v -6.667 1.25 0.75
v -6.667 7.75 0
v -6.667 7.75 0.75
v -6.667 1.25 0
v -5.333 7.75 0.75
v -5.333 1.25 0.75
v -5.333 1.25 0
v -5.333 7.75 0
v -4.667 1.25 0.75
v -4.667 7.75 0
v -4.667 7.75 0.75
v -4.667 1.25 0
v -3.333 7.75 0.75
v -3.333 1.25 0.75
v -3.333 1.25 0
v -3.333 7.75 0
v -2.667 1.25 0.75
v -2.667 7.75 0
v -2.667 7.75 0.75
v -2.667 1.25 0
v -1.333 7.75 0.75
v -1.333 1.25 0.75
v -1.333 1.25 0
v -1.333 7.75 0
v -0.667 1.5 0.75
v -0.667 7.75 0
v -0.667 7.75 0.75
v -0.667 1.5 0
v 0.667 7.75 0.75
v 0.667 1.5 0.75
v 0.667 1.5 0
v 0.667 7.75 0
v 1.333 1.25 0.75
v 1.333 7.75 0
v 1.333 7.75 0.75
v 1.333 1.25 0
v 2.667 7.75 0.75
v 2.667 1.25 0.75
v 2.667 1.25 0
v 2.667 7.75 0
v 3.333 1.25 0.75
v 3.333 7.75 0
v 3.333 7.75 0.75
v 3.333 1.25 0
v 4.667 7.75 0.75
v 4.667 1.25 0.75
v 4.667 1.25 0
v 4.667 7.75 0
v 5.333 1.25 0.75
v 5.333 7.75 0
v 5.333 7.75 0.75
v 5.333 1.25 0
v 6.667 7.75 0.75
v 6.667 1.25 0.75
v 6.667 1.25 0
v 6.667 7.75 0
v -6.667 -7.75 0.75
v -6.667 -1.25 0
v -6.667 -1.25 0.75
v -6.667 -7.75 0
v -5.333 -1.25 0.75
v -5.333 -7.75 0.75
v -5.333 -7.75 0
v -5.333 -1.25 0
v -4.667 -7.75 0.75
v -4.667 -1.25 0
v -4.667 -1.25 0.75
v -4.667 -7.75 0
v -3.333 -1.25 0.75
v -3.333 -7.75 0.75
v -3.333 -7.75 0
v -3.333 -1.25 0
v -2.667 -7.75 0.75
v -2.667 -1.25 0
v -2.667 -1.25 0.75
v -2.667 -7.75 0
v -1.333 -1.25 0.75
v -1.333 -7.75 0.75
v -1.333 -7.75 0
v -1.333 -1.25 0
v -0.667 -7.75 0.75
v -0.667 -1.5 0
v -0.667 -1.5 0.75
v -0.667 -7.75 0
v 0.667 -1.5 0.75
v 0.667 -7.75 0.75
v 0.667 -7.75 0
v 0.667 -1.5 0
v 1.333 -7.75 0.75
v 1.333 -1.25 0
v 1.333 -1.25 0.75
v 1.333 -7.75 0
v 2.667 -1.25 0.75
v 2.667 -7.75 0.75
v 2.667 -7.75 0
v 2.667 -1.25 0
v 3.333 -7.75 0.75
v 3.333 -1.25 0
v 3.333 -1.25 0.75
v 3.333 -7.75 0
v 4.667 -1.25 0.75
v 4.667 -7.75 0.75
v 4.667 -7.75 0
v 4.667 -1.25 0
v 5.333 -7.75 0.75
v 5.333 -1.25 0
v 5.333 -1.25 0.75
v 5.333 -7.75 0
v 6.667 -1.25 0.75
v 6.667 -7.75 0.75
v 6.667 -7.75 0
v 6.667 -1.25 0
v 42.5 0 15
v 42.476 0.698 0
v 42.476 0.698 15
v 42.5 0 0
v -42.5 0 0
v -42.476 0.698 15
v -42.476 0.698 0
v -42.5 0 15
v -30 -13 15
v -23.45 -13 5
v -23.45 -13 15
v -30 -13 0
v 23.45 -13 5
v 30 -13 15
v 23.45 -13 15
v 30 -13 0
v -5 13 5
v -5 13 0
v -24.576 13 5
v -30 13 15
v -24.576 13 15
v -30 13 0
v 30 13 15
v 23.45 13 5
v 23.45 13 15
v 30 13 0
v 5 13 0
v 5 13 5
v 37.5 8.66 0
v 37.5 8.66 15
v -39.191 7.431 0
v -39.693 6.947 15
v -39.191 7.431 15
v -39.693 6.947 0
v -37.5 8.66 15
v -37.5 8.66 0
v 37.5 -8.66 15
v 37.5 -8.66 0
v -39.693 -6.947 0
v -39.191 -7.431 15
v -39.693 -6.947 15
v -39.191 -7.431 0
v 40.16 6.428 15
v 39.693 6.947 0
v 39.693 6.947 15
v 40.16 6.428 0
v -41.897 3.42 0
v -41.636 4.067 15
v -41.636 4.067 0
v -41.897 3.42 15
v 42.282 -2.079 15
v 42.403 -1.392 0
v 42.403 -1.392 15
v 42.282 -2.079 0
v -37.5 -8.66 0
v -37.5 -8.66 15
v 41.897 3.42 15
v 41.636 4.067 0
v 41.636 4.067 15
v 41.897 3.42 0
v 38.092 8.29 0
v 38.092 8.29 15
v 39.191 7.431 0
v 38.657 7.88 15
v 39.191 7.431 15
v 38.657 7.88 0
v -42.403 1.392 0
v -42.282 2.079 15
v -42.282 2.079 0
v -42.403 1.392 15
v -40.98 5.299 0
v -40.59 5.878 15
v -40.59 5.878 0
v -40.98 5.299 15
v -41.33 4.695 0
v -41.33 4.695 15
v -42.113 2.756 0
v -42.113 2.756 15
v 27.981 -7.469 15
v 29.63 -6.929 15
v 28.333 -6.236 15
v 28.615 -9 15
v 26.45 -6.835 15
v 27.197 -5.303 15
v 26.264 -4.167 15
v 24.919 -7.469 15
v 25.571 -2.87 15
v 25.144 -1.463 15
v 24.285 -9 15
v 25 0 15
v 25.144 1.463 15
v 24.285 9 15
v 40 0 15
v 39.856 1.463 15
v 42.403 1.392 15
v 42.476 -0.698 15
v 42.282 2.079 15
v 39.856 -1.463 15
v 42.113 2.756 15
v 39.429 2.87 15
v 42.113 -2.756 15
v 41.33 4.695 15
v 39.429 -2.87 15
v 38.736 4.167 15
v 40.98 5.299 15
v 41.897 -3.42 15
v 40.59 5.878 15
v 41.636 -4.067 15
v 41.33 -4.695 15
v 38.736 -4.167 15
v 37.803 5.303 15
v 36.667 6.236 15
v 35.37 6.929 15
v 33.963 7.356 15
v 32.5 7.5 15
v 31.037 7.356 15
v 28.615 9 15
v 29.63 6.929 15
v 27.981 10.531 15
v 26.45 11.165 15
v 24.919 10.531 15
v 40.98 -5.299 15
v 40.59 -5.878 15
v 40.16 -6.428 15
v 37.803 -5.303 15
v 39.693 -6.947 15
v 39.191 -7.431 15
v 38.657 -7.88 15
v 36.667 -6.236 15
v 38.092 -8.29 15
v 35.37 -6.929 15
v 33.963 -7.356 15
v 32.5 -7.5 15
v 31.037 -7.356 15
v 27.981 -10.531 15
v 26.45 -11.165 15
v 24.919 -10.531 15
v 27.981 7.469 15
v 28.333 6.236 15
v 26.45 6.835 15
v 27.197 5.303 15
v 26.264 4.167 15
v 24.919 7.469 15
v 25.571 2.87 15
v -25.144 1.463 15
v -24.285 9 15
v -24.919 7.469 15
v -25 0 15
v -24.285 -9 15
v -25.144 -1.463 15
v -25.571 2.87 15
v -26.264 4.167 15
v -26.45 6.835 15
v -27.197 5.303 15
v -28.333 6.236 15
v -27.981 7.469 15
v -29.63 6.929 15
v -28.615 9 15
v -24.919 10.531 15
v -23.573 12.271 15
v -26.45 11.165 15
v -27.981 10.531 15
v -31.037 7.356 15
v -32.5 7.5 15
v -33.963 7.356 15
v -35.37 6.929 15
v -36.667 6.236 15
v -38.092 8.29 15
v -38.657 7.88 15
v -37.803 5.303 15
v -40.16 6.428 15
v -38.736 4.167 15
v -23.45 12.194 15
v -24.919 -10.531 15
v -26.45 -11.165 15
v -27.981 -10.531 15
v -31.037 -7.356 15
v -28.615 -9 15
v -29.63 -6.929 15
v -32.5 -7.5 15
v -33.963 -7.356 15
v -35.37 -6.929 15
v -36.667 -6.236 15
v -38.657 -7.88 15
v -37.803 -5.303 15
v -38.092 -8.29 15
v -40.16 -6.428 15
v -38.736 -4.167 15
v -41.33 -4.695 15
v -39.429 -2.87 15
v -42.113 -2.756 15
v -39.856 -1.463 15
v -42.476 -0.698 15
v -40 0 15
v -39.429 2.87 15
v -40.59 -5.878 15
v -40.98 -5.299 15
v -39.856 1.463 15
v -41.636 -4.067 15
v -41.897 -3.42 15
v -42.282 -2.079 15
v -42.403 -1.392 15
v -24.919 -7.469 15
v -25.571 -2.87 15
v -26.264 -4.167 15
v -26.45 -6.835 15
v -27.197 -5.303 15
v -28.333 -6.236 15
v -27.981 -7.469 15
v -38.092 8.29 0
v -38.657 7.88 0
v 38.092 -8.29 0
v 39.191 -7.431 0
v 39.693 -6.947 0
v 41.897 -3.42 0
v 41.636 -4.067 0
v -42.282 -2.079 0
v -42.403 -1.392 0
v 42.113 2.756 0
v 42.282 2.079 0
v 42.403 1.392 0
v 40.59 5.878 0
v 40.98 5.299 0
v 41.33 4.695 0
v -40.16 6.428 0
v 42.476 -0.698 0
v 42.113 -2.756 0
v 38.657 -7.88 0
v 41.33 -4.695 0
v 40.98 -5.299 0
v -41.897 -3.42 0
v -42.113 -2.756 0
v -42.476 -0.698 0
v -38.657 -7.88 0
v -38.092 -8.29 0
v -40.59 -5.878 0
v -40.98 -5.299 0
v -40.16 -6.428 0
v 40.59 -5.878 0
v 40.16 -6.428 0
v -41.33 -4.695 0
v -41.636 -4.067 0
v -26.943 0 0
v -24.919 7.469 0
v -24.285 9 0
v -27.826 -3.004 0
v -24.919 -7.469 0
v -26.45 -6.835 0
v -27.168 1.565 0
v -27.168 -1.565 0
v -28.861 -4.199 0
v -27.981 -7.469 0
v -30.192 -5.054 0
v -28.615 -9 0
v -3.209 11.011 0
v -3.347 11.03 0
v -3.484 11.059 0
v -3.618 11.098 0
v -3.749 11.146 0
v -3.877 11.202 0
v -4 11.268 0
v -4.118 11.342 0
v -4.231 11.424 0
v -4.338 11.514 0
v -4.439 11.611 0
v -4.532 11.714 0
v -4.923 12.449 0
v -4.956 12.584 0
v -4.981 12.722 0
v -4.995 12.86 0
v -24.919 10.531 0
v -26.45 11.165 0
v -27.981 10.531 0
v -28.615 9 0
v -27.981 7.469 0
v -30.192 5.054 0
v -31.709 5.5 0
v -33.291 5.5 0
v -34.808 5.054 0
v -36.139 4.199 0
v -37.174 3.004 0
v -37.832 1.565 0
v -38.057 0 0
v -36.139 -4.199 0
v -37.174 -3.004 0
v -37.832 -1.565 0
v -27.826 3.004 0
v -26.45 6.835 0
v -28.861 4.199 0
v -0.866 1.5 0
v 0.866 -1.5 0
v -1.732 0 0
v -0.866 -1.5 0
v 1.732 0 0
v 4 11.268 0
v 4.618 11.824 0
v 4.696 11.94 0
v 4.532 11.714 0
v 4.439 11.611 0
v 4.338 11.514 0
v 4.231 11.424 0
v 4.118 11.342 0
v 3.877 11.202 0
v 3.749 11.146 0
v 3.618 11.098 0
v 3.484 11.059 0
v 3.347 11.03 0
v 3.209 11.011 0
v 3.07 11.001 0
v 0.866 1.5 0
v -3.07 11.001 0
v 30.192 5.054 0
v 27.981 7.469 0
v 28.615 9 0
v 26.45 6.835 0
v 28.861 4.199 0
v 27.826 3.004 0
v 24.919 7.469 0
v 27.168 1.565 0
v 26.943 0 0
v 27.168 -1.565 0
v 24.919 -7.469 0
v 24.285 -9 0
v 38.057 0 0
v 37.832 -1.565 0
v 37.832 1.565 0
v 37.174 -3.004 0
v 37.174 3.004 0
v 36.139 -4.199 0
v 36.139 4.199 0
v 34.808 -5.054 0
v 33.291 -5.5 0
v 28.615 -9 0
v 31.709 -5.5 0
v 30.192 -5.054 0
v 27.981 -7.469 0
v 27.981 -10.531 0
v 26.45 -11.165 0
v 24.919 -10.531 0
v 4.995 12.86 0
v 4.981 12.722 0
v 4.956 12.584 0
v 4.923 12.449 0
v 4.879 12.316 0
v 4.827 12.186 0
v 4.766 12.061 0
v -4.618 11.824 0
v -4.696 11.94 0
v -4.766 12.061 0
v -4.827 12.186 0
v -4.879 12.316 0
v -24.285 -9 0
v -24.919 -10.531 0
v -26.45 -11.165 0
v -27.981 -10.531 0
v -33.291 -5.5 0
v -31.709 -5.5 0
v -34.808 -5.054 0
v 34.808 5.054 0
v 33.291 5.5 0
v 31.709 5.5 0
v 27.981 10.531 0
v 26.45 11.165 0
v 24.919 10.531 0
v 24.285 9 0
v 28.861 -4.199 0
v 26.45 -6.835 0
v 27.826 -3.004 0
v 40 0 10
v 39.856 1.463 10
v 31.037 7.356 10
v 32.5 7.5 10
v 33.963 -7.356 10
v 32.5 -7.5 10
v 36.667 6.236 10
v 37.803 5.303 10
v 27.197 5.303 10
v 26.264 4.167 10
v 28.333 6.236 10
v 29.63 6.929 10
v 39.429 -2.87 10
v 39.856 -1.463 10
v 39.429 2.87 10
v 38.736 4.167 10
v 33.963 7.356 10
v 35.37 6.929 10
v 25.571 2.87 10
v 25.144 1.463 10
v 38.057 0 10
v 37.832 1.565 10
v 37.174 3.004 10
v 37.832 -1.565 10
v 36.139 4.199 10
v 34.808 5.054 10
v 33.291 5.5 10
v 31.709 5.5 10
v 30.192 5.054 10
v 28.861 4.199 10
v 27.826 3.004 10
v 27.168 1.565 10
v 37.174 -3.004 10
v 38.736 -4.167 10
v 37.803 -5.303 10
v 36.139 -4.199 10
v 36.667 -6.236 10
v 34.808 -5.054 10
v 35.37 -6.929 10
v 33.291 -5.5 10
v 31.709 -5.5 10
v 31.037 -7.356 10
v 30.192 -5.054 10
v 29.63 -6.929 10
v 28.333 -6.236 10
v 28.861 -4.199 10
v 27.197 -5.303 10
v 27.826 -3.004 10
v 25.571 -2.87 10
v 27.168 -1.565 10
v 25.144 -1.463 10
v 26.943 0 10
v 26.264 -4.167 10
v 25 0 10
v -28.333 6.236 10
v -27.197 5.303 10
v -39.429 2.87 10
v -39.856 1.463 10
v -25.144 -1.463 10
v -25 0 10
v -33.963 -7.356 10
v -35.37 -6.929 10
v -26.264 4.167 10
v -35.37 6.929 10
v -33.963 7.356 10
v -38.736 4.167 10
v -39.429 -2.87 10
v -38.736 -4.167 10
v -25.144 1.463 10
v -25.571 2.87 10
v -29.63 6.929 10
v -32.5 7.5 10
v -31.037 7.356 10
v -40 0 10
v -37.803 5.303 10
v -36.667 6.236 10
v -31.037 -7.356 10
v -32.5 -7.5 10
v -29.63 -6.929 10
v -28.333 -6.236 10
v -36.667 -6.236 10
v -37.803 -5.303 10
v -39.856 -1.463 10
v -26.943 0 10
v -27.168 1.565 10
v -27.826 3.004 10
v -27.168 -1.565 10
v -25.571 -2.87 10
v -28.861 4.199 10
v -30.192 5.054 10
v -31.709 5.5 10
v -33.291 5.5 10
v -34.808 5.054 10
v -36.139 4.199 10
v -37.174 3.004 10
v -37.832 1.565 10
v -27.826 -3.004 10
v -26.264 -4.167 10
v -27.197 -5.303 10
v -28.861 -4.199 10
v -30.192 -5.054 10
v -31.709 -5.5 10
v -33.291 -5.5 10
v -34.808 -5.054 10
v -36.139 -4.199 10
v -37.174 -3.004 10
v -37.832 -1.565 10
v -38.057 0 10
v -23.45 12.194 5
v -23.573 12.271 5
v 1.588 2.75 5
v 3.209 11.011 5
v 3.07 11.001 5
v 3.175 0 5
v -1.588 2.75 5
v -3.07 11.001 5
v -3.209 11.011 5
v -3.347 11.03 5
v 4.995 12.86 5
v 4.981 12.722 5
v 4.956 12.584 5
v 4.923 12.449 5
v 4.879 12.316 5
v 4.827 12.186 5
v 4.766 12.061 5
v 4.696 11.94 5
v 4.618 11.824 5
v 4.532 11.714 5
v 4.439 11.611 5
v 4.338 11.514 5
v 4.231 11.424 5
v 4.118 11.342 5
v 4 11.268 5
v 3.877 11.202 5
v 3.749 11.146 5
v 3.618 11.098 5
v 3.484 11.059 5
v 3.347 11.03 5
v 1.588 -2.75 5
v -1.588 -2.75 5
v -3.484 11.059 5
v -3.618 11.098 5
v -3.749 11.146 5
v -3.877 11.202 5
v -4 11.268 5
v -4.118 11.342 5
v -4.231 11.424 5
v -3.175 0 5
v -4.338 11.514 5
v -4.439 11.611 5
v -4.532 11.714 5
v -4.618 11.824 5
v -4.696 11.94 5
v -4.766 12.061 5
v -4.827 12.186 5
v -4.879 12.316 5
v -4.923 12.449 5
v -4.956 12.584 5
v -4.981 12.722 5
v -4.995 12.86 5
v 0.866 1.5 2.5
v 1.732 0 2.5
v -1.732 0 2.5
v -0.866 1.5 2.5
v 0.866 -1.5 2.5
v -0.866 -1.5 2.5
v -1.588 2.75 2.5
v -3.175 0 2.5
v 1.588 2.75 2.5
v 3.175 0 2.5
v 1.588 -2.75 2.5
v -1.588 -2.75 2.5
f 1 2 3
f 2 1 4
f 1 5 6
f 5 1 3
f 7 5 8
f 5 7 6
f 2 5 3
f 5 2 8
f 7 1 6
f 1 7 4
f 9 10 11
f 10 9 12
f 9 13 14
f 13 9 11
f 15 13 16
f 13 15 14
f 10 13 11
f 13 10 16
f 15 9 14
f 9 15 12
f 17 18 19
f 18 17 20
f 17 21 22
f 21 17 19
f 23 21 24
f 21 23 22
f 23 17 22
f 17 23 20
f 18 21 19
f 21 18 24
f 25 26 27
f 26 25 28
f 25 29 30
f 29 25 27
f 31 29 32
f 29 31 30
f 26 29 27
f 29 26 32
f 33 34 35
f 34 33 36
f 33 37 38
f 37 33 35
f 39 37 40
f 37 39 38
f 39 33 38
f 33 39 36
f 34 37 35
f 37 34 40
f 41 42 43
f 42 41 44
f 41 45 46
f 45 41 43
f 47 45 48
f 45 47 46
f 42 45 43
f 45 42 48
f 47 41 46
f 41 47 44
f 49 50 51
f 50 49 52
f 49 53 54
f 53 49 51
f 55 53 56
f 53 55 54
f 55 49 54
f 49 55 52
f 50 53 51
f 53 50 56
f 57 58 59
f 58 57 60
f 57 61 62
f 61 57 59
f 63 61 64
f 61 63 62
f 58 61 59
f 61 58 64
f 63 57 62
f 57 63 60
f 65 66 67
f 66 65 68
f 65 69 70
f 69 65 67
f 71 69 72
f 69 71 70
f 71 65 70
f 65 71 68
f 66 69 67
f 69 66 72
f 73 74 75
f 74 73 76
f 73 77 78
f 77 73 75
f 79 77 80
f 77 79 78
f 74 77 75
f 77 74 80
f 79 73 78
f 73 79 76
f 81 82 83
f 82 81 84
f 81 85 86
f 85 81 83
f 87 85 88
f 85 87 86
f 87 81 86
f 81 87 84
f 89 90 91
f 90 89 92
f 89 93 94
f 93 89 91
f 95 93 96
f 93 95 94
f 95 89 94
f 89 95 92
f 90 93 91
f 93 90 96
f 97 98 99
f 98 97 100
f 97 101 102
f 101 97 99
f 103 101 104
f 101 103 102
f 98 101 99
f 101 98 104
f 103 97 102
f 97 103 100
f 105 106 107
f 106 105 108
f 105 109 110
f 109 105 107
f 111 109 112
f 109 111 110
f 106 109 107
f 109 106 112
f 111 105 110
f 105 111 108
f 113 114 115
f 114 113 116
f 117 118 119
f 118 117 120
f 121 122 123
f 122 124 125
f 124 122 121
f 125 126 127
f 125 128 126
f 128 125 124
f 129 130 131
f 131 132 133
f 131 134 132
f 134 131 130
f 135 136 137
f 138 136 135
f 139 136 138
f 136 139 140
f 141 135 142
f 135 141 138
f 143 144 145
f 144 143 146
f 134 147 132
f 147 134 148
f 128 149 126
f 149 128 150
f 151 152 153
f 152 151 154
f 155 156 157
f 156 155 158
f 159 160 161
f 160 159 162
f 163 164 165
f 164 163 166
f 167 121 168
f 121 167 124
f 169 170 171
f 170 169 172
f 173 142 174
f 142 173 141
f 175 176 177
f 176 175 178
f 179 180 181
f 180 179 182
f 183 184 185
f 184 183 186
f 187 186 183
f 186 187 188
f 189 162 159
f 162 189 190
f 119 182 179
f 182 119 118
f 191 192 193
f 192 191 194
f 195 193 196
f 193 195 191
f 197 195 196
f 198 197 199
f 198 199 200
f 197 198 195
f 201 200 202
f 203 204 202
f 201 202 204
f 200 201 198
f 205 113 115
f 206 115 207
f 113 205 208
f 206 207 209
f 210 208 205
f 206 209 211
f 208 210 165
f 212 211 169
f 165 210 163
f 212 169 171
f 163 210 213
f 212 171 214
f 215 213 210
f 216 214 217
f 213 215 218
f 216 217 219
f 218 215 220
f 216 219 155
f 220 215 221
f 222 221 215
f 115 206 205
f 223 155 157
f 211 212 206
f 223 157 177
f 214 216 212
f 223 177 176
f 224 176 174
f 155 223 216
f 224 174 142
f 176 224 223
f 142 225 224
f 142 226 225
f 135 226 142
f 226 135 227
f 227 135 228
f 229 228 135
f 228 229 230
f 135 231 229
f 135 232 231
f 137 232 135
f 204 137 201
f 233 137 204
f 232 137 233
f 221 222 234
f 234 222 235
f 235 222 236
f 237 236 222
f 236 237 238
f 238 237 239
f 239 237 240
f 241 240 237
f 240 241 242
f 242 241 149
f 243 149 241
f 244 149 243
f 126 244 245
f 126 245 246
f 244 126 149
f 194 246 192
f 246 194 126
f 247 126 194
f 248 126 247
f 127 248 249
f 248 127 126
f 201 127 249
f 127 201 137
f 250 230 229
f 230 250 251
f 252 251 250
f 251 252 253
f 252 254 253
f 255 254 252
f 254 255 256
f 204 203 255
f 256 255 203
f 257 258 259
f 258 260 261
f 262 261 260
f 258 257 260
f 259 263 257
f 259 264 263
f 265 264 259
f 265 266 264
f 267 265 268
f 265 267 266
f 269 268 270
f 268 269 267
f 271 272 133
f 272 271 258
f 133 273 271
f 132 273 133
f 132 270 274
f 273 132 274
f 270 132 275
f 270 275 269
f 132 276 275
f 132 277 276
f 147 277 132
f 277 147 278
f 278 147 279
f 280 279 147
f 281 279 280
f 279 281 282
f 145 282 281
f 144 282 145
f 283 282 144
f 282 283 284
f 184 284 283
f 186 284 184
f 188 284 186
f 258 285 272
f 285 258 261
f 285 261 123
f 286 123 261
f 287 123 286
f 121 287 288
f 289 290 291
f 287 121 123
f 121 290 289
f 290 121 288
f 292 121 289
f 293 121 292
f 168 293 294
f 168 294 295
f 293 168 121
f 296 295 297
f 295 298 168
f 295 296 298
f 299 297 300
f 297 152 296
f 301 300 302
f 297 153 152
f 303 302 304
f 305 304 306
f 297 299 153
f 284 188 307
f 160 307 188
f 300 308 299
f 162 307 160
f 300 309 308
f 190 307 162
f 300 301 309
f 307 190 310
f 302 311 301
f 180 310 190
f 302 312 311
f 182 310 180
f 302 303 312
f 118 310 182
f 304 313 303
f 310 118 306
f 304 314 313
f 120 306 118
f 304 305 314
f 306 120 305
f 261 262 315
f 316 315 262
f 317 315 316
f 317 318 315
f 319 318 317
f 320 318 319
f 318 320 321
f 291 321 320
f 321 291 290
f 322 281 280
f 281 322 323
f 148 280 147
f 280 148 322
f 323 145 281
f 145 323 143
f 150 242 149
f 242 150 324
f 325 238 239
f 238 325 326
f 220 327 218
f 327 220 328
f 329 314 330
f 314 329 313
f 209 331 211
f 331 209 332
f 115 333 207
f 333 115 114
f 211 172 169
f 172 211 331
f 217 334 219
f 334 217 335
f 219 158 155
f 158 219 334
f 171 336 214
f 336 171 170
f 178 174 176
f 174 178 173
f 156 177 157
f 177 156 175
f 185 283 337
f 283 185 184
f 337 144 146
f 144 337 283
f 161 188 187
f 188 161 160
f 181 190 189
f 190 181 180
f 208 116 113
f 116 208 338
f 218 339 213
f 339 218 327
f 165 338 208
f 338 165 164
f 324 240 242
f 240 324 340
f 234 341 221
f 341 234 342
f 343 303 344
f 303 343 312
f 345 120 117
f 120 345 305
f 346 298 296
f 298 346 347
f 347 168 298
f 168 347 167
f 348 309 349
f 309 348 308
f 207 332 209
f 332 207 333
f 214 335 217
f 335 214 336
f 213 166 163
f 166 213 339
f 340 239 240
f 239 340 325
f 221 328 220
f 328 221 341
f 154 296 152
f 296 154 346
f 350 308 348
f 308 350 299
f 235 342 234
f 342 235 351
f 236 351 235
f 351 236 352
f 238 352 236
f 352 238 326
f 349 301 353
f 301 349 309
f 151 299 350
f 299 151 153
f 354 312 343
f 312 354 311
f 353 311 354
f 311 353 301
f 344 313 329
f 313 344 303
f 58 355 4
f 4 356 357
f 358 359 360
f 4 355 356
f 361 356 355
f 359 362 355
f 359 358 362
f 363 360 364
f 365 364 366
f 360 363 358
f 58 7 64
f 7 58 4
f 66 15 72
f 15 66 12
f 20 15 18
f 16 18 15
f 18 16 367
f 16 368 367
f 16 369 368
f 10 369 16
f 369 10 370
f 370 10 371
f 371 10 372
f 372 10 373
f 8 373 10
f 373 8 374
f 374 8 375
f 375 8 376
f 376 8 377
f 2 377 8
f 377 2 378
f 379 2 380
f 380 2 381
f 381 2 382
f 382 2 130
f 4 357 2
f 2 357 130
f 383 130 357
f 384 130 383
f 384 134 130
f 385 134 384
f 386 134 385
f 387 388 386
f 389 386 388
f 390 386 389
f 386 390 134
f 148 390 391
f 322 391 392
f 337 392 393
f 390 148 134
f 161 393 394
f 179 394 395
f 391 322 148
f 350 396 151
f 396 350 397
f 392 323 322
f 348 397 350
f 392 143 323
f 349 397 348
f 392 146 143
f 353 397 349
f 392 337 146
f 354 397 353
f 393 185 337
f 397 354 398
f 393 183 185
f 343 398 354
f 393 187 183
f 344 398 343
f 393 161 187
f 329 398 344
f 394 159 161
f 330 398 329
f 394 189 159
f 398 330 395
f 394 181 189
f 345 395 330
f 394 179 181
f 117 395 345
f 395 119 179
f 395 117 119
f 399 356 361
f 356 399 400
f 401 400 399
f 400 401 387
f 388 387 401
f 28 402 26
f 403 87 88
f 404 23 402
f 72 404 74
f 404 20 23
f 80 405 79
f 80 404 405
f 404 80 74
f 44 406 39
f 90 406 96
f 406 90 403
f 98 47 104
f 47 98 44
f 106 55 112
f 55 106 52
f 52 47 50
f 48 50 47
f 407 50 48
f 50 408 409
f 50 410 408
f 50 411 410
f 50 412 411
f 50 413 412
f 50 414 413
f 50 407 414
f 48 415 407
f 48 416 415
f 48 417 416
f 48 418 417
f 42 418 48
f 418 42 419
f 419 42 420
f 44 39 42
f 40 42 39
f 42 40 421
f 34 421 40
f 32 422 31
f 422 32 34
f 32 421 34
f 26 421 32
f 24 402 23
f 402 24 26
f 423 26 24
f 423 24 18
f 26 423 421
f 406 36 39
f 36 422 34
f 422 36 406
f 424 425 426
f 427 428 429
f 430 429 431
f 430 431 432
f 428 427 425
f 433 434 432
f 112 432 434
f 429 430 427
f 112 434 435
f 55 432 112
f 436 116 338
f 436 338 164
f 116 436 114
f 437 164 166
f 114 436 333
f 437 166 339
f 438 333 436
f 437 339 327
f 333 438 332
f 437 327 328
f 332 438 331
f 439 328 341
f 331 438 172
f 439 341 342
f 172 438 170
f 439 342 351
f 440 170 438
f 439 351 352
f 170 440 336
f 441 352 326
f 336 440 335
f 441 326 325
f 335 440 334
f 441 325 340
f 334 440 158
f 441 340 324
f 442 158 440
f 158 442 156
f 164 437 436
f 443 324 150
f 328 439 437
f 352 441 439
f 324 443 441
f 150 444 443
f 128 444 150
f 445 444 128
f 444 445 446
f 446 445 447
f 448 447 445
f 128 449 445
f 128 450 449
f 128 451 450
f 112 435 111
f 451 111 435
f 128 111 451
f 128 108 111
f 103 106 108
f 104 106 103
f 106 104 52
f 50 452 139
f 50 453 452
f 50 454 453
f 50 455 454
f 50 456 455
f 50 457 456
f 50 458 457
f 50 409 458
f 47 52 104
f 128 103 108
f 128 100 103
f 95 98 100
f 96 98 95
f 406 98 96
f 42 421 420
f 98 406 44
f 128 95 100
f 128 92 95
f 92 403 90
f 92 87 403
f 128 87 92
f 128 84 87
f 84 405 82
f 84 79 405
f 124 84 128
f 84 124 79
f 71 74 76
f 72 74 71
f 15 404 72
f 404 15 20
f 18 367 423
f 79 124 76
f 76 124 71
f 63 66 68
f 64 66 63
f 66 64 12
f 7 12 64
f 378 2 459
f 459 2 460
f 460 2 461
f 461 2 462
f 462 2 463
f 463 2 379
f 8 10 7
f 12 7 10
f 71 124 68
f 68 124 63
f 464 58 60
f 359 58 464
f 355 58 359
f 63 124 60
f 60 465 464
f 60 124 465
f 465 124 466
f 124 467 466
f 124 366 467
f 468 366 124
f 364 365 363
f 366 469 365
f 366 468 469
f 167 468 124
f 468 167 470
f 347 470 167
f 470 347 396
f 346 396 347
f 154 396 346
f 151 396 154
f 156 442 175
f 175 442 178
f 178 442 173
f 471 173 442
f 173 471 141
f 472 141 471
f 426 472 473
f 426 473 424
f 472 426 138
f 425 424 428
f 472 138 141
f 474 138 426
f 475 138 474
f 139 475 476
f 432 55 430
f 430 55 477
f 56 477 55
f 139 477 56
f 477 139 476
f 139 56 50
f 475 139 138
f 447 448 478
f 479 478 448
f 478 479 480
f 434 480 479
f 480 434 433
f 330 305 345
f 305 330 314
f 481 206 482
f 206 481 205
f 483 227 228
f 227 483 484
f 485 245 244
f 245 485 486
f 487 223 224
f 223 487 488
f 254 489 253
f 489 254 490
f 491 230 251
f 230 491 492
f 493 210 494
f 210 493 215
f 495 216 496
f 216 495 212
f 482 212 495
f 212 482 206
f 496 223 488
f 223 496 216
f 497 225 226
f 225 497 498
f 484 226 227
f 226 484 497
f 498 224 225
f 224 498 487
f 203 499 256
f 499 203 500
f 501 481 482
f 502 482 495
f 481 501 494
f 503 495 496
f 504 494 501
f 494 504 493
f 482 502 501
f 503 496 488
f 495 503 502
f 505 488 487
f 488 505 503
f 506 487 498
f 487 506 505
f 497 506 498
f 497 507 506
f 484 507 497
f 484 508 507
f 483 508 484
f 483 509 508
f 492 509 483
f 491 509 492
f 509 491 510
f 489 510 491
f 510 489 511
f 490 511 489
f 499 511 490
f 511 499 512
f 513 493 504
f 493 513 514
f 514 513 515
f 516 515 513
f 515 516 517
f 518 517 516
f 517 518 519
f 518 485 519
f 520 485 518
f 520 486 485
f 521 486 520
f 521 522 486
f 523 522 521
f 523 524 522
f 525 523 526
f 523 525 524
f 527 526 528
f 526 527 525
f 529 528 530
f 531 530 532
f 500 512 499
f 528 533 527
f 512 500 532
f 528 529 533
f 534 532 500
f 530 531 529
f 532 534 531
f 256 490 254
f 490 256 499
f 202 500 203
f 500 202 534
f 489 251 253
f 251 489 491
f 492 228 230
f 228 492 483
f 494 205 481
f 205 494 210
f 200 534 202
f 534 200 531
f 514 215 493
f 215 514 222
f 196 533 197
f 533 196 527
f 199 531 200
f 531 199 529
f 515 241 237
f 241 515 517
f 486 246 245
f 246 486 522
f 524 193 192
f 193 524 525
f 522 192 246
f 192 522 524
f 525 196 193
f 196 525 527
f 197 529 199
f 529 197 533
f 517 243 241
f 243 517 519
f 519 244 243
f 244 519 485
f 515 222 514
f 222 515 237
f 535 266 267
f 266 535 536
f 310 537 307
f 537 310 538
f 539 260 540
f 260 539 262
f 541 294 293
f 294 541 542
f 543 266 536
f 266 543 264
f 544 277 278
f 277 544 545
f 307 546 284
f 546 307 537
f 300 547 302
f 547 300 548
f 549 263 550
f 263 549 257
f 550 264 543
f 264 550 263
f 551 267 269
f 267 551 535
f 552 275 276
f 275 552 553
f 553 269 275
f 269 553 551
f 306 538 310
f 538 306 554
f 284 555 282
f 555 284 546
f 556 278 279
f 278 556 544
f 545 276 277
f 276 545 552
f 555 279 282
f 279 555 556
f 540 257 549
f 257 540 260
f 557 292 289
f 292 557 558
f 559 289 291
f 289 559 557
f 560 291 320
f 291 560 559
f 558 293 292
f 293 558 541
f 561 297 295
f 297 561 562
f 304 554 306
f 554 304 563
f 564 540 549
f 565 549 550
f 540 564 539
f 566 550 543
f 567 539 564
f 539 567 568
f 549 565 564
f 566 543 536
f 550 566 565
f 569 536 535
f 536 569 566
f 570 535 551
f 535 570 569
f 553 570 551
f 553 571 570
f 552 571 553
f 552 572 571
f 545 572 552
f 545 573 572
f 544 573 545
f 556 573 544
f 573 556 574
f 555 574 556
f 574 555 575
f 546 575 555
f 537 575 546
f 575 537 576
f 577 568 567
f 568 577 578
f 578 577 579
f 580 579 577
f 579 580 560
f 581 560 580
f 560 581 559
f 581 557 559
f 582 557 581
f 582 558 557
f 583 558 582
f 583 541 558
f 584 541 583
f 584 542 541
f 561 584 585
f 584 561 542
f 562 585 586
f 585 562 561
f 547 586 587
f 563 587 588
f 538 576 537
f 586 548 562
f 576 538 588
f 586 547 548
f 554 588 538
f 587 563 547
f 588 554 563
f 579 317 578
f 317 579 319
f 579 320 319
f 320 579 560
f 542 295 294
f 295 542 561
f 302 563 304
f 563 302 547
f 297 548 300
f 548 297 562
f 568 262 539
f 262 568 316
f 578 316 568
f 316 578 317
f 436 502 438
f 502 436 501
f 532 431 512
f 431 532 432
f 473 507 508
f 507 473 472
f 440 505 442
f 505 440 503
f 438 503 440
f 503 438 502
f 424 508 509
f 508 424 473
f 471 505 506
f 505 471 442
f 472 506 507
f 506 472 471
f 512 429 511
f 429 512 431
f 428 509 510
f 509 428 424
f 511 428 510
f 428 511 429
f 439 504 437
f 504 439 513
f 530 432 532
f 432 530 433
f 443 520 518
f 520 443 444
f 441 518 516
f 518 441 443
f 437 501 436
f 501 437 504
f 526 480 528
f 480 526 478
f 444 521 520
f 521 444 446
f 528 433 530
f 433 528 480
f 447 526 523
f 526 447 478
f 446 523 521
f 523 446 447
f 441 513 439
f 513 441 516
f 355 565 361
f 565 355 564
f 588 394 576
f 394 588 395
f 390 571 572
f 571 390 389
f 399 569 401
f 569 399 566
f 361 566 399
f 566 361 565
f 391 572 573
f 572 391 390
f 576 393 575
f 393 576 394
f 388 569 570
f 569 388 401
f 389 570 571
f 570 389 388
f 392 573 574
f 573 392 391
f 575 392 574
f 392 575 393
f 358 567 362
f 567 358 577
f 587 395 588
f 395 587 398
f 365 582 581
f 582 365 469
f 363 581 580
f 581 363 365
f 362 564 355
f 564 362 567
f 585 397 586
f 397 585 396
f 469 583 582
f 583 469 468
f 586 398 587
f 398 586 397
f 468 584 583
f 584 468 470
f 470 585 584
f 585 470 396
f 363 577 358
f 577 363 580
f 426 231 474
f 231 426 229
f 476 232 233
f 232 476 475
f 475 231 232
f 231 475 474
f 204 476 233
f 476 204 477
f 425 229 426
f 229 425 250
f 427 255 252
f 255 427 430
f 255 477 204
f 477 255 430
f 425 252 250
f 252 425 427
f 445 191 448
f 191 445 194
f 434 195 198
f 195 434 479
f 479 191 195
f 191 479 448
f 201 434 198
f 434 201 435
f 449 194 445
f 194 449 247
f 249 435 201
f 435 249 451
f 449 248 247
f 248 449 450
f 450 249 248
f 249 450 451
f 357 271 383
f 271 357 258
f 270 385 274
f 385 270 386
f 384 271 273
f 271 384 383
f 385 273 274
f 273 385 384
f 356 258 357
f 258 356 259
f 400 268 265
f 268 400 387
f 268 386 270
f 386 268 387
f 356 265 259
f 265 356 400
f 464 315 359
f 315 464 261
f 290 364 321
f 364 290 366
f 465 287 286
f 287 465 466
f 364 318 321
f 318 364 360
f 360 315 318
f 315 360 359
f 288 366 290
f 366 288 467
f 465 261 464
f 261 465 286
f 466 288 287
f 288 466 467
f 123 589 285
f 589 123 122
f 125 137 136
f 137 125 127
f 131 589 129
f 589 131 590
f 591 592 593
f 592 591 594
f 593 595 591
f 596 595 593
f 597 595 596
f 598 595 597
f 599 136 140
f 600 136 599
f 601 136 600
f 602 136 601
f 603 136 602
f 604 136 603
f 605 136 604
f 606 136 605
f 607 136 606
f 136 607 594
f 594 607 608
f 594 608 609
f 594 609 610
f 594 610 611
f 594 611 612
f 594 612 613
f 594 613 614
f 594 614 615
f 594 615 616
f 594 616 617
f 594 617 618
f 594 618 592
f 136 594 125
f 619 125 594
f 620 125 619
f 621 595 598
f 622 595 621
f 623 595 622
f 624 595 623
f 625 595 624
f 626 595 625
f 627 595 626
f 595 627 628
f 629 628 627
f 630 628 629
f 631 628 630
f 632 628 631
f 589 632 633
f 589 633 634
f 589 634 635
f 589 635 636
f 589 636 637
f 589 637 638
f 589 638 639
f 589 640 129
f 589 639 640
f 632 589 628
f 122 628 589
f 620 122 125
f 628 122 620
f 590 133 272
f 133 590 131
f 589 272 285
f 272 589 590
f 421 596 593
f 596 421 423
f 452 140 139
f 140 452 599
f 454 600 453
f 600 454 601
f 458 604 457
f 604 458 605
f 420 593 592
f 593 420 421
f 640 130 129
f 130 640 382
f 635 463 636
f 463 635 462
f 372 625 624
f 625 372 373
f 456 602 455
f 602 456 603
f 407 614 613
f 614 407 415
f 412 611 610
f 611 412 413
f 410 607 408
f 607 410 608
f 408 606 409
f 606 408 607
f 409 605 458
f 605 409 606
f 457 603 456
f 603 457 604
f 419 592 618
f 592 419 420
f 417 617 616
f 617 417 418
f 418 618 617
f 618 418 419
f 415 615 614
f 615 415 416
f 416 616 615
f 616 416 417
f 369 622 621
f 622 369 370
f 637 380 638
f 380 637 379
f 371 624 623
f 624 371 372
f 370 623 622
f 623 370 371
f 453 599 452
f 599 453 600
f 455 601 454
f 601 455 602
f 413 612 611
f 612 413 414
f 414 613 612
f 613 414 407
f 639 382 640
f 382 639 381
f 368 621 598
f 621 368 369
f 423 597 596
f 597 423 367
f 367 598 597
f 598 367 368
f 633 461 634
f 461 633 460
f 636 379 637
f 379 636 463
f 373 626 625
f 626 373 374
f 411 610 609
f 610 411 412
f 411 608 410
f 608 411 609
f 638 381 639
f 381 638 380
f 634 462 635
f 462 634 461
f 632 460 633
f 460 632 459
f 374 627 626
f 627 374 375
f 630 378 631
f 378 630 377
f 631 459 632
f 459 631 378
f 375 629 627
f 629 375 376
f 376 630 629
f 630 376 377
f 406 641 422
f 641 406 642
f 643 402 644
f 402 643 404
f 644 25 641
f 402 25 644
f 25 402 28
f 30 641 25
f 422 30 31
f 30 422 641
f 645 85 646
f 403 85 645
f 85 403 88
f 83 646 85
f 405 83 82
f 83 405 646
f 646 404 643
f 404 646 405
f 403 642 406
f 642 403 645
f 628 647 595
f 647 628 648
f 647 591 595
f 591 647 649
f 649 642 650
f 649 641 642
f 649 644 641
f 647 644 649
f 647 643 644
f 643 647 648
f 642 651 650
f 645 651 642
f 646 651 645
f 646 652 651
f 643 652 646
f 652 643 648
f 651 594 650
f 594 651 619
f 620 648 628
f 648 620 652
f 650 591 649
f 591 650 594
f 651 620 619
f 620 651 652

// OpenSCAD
// file: ../../nutShape.scad
// a nut shape that takes height and width across flats as input.

nutShape(6, 3);

module nutShape(w, h)
{
    rotate_extrude($fn = 6)
        square([((w / 2) / (cos(30))), h], center = false);
}
// file: ../../polyhole.scad
// The Cylinder is dead! Long live the Cylinder!
// A module for a polyhole by radius, based on Nophead's work.

module polyhole(h, r, cent = false)
{
    n = max(round(4 * r), 3);
    cylinder(h = h, r = r / cos(180 / n), $fn = n, center = cent);
}
// main file
use<../../polyhole.scad>
use<../../nutShape.scad>

CarriageEndT();

module CarriageEndT()
{
    difference()
    {
        union()
        {
            hull()
            {
                translate([65/2, 0, 0])
                    cylinder(h = 5+5+5, r = (15+5)/2, $fn = 90);
                translate([-65/2, 0, 0])
                    cylinder(h = 5+5+5, r = (15+5)/2, $fn = 90);
                translate([0, 0, (5+5+5)/2])
                    cube([60, 20+6, 5+5+5], center = true);
            }
        }
        translate([65/2, 0, 5+5])
            cylinder(h = 5+5, r = 15/2, $fn = 32);
        translate([-65/2, 0, 5+5])
            cylinder(h = 5+5, r = 15/2, $fn = 32);
        translate([65/2, 0, 0])
            polyhole(5+5+5, 5.5);
        translate([-65/2, 0, 0])
            polyhole(5+5+5, 5.5);
        translate([(42.3+4.6)/2+3, 9, 0])
            polyhole(5+5+5, 2);
        translate([(42.3+4.6)/2+3, -9, 0])
            polyhole(5+5+5, 2);
        translate([-(42.3+4.6)/2-3, 9, 0])
            polyhole(5+5+5, 2);
        translate([-(42.3+4.6)/2-3, -9, 0])
            polyhole(5+5+5, 2);
        translate([0, 42.3/2-13, 5+(25+2+28)/2])
            cube([42.3+4.6, 42.3, 25+2+28], center = true);
        translate([-(31/2-4.6/2), 4+42.3/2+31/2-(20+6)/2, 5])
            cylinder(h = 28, r = 17.05+1.5, $fn = 90);
        hull()
        {
            translate([3, (20+6)/2, 0])
                cylinder(h = 5, r = 2, $fn = 90);
            translate([-3, (20+6)/2, 0])
                cylinder(h = 5, r = 2, $fn = 90);
        }
        polyhole(5, 1.5);
        translate([0, 0, 5-2.5])
            nutShape(5.5, 2.5);
        for(i = [-6 : 2 : 6])
            translate([i, 4.5, 0])
                cube([4/3, 6.5, 2*0.75], center = true);
        for(i = [-6 : 2 : 6])
            translate([i, -4.5, 0])
                cube([4/3, 6.5, 2*0.75], center = true);
    }
}
